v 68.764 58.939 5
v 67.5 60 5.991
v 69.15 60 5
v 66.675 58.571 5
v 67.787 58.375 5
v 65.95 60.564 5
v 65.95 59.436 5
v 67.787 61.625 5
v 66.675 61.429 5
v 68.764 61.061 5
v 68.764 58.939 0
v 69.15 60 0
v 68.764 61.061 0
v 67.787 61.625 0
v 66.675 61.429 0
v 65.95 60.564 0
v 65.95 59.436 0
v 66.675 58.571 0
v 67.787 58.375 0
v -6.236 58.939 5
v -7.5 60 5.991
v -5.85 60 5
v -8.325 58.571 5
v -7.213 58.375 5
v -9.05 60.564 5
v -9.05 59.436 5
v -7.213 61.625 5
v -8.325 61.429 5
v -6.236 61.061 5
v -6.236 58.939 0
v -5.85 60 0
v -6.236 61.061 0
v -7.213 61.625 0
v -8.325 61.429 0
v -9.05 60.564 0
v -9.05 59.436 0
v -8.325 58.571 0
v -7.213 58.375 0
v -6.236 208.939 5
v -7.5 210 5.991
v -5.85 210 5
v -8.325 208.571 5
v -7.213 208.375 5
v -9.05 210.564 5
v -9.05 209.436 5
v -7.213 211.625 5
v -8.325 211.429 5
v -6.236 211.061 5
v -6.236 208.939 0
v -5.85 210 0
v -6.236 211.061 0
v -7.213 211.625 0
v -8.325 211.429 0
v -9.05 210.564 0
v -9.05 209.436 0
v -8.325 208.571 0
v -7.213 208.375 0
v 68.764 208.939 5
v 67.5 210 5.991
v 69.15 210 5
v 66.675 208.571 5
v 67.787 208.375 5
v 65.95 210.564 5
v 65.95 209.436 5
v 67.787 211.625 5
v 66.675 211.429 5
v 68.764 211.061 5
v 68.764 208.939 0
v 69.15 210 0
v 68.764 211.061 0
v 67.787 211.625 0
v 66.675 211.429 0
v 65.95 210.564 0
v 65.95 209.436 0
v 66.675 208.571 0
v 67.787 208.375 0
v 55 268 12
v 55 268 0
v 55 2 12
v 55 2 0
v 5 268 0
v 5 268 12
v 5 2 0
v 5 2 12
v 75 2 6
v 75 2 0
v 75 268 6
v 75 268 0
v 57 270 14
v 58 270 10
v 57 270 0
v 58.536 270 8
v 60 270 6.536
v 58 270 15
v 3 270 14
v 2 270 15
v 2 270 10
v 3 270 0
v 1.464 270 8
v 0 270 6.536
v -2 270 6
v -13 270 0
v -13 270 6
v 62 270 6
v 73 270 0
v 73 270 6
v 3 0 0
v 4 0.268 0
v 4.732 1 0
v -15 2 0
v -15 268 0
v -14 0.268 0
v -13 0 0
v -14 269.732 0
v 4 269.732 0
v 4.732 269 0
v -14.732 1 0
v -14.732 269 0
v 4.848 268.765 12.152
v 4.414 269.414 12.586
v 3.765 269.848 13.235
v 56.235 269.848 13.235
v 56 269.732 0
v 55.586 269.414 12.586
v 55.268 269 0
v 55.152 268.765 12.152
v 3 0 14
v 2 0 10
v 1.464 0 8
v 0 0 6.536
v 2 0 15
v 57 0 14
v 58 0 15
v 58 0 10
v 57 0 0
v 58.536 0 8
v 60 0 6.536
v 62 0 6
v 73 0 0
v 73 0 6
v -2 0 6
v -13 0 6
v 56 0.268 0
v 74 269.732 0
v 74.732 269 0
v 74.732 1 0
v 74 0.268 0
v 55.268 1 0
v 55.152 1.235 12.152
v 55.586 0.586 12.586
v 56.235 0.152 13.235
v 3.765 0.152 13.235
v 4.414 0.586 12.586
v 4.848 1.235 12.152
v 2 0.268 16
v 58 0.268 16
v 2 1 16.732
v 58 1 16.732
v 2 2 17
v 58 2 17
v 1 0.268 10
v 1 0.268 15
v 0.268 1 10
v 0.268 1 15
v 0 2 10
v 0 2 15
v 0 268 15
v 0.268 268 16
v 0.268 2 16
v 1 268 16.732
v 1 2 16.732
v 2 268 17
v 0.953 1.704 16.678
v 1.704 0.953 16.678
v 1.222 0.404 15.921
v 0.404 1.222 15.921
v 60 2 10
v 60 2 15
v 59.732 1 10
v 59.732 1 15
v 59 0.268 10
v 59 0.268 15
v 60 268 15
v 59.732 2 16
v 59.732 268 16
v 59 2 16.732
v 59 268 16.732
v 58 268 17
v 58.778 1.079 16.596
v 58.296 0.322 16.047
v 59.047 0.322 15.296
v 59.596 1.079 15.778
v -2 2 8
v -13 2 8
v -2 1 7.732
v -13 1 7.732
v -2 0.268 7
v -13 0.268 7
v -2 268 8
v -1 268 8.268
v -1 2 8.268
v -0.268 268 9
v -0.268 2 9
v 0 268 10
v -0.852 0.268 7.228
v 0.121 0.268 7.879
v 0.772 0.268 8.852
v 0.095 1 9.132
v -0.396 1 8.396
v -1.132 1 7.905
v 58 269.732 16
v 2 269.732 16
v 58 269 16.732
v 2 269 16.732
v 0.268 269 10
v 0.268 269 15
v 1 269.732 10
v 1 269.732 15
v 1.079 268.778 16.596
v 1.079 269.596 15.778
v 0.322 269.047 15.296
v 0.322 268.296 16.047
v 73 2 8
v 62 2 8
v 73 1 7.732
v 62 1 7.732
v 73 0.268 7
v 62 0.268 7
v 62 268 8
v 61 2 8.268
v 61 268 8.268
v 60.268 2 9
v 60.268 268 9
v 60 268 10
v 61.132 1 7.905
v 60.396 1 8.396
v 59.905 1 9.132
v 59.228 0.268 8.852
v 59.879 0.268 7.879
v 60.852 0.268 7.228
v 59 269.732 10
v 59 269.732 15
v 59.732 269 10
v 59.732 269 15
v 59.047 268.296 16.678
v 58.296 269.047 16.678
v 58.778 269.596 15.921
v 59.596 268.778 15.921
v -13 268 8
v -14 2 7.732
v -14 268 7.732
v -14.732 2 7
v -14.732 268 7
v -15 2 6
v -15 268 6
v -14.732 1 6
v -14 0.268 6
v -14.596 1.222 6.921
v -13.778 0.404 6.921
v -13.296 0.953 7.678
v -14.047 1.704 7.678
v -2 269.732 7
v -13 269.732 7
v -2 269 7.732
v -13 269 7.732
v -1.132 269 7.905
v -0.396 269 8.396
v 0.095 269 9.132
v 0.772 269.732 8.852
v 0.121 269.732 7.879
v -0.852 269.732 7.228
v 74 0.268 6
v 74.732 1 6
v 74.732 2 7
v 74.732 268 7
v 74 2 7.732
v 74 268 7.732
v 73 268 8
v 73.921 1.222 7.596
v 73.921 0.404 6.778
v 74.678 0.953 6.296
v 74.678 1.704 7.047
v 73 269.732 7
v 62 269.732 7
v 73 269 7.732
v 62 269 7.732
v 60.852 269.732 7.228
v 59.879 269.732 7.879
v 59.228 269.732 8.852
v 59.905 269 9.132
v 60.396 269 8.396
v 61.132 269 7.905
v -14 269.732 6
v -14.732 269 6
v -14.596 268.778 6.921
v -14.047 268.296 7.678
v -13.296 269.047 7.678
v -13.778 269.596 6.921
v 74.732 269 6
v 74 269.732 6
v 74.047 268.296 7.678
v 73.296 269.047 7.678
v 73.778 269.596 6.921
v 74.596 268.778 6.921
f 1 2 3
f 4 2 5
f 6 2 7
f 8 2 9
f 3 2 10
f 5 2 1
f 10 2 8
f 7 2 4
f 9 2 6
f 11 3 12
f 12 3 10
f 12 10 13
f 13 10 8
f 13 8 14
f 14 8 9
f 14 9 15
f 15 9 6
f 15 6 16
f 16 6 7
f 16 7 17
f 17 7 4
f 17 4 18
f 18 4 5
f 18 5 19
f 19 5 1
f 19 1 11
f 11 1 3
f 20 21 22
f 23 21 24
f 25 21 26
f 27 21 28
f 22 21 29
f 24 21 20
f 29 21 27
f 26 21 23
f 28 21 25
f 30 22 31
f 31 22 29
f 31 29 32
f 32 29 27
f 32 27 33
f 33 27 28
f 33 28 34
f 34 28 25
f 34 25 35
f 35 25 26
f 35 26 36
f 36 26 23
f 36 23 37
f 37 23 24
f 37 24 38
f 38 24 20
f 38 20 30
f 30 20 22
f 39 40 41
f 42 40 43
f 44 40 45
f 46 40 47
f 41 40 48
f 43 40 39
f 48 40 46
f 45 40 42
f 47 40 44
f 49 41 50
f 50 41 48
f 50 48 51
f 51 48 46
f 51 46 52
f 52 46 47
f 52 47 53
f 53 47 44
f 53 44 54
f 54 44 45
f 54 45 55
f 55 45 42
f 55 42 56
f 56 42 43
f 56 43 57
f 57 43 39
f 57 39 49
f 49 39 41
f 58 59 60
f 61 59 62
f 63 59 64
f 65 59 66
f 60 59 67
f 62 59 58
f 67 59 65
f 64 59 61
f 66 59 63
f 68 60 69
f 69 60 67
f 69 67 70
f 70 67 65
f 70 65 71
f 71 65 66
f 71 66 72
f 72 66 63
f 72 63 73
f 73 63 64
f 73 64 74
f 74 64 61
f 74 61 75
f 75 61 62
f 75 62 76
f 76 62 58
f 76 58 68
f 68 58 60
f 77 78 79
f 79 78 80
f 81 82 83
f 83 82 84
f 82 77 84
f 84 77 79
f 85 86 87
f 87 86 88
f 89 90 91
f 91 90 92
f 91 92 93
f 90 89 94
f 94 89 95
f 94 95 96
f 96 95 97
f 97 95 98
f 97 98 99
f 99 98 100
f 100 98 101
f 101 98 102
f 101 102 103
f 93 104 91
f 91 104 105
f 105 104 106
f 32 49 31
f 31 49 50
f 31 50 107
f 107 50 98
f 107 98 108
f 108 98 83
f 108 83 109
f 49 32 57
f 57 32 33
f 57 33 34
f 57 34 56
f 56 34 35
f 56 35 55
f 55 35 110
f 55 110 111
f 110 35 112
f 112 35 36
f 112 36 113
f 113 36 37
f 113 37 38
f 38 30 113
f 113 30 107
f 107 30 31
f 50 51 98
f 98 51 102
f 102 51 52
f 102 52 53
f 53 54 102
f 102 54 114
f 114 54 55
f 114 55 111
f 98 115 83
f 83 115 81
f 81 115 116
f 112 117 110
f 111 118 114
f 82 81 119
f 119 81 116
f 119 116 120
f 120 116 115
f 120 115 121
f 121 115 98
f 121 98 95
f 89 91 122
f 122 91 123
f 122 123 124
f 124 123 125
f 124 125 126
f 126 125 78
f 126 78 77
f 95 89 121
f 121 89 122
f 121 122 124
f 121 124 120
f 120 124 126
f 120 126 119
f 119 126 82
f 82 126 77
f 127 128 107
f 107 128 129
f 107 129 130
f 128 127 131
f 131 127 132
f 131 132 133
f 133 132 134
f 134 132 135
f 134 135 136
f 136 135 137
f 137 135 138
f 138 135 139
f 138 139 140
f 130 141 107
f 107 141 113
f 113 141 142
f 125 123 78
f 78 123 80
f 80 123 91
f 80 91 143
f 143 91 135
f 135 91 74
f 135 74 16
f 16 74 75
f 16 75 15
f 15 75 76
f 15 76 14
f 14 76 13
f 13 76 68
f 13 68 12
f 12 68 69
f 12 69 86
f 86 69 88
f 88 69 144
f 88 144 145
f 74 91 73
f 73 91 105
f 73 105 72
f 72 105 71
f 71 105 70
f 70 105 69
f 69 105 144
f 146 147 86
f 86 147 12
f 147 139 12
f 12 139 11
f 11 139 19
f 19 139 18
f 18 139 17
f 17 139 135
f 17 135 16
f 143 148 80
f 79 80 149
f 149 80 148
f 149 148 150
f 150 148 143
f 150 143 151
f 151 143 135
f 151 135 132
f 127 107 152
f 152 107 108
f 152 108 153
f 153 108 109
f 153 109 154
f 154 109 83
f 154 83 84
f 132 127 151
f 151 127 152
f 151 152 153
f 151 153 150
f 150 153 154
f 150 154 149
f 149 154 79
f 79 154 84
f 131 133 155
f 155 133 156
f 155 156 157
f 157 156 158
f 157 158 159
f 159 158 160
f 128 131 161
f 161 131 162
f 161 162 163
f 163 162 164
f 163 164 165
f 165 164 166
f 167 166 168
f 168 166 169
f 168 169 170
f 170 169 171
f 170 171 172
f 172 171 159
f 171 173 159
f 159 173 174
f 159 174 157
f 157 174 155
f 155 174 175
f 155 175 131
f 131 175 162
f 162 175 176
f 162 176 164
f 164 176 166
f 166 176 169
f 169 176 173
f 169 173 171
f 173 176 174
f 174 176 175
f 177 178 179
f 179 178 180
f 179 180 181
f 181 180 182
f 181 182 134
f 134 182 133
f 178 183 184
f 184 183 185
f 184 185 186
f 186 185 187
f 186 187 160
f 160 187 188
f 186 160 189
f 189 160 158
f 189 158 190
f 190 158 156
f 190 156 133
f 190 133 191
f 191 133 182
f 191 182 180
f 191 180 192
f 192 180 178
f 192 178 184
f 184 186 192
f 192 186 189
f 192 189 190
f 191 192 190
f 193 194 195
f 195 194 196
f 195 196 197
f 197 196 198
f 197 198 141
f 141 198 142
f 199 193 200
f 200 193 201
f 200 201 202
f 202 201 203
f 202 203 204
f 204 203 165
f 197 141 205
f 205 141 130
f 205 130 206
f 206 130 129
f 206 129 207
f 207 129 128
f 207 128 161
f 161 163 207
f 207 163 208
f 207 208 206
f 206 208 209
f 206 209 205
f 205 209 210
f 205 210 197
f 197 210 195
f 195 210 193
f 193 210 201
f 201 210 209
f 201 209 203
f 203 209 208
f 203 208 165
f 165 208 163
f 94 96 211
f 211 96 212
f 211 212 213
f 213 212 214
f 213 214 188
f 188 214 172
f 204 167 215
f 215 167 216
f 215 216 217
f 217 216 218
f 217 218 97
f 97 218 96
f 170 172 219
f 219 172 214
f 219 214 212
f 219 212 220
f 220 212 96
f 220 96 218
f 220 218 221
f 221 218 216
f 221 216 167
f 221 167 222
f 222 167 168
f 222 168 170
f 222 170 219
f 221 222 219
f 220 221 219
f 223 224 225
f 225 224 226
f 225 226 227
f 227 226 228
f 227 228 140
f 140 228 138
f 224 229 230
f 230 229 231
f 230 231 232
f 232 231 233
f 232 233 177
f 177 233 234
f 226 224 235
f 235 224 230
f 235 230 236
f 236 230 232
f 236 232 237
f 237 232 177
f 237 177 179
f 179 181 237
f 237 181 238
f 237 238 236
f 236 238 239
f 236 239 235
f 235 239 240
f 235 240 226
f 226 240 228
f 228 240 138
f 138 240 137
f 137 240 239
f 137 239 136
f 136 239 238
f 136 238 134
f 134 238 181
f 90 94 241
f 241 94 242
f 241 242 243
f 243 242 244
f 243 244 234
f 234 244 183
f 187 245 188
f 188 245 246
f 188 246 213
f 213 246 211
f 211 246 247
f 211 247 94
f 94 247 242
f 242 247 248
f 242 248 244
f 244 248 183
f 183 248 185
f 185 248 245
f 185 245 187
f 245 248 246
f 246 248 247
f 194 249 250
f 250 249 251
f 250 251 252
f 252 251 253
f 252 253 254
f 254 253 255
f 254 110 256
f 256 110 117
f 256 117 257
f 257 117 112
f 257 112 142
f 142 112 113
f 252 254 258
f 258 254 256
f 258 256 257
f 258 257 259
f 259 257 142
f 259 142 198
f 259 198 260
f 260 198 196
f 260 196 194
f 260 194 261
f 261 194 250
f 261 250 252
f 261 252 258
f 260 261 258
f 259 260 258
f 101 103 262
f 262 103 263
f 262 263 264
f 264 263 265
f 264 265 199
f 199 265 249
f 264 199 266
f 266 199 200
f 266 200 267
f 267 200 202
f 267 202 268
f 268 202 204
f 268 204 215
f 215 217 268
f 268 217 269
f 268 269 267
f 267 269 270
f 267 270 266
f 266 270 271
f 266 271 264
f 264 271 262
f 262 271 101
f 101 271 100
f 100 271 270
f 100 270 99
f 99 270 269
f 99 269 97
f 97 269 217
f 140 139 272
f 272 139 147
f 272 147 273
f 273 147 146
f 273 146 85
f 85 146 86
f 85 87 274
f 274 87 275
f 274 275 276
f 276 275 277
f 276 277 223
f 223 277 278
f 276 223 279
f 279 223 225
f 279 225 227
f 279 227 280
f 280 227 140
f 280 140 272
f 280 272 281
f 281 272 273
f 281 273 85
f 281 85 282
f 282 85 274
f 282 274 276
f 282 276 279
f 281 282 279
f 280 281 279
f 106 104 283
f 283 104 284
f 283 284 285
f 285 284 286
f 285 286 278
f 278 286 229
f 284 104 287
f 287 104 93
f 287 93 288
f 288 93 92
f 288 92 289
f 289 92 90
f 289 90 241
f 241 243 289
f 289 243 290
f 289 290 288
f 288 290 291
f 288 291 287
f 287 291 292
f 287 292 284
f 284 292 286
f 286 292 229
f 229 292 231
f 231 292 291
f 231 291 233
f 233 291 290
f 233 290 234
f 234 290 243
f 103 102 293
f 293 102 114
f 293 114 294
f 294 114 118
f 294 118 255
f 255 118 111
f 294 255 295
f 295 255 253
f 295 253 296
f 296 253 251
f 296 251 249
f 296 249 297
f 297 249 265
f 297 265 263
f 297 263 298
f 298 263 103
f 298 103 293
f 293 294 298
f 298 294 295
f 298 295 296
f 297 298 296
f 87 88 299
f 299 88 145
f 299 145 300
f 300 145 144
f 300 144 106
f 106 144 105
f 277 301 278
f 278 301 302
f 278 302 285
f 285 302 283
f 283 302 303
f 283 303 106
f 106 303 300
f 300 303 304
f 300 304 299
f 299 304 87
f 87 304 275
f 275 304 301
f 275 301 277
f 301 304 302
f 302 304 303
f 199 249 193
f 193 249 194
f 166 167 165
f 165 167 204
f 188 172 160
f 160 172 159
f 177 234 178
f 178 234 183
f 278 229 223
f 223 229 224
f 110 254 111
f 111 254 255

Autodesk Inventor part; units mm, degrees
ref_plane "YZ Plane" through (0, 0, 0) normal (1, 0, 0) x (0, 1, 0)
sketch "スケッチ1" plane through (0, 0, 0) normal (0, 0, 1) x (1, 0, 0)
  line L0 (0, 0) -> (60, 0)
  line L1 (60, 0) -> (60, 270)
  line L2 (60, 270) -> (0, 270)
  line L3 (0, 270) -> (0, 0)
  dimension "d0" = 270
  dimension "d1" = 60
extrude "押し出し1" add sketch "スケッチ1" along normal blind 17
ref_plane "作業平面1" through (30, 0, 0) normal (1, 0, 0) x (0, 0, -1)
ref_plane "作業平面2" through (0, 135, 0) normal (0, -1, 0) x (1, 0, 0)
sketch "スケッチ2" plane through (0, 0, 0) normal (0, -1, 0) x (1, 0, 0)
  line L0 (30, 24) -> (30, -4) projected
  line L1 (60, 0) -> (0, 0) projected
  line L2 (30, 0) -> (5, 0)
  line L3 (5, 0) -> (5, 12)
  line L4 (5, 12) -> (30, 12)
  line L5 (30, 12) -> (30, 0)
  line L6 (0, 17) -> (60, 17) projected
  line L7 (0, 0) -> (0, 17) projected
  line L8 (55, 0) -> (55, 12)
  line L9 (55, 12) -> (30, 12)
  point P0 (5, 0)
  dimension "d4" = 5
  dimension "d5" = 5
extrude "押し出し2" cut sketch "スケッチ2" against normal through all contours L9 L8 L1 L0 | L0 L1 L3 L4
sketch "スケッチ3" plane through (0, 0, 17) normal (0, -1, 0) x (1, 0, 0)
  line L0 (5, -17) -> (0, -17) projected
  line L1 (0, -17) -> (-15, -17)
  line L2 (-15, -17) -> (-15, -9)
  line L3 (-15, -9) -> (0, -9)
  line L4 (0, -9) -> (0, -17)
  line L5 (30, 3.4) -> (30, -20.4) projected
  line L6 (60, -17) -> (75, -17)
  line L7 (75, -17) -> (75, -9)
  line L8 (75, -9) -> (60, -9)
  line L9 (60, -9) -> (60, -17)
  dimension "d8" = 8
  dimension "d9" = 15
extrude "押し出し3" add sketch "スケッチ3" against normal up to surface (270 mm away)
sketch "スケッチ4" plane through (0, 0, 0) normal (0, 0, 1) x (1, 0, 0)
  line L0 (-15, 0) -> (5, 0) projected
  line L1 (-15, 0) -> (-15, 270) projected
  line L2 (30, 324) -> (30, -54) projected
  line L3 (93, 135) -> (-33, 135) projected
  point P0 (0, 0)
  point P1 (-7.5, 60)
  point P2 (-7.5, 210)
  point P3 (67.5, 60)
  point P4 (67.5, 210)
  dimension "d12" = 60
  dimension "d13" = 7.5
hole "穴1" at (-7.5, 60, 0) at (-7.5, 210, 0) at (67.5, 60, 0) at (67.5, 210, 0) direction (0, 0, 1) diameter 3.3 depth 5 tip angle 118
fillet "フィレット1" radius 2 26 edges at (30, 0, 17) (30, 0, 12) (5, 0, 6) (55, 0, 6) (60, 0, 12.5) (60, 135, 17) (67.5, 0, 8) (75, 0, 4) (75, 135, 8) (0, 0, 12.5) (-7.5, 0, 8) (-15, 135, 8) (-15, 0, 4) (0, 135, 17) (0, 135, 8) (60, 135, 8) (30, 270, 17) (0, 270, 12.5) (60, 270, 12.5) (67.5, 270, 8) (-7.5, 270, 8) (75, 270, 4) (-15, 270, 4) (30, 270, 12) (55, 270, 6) (5, 270, 6)
properties part number "CableCover"
